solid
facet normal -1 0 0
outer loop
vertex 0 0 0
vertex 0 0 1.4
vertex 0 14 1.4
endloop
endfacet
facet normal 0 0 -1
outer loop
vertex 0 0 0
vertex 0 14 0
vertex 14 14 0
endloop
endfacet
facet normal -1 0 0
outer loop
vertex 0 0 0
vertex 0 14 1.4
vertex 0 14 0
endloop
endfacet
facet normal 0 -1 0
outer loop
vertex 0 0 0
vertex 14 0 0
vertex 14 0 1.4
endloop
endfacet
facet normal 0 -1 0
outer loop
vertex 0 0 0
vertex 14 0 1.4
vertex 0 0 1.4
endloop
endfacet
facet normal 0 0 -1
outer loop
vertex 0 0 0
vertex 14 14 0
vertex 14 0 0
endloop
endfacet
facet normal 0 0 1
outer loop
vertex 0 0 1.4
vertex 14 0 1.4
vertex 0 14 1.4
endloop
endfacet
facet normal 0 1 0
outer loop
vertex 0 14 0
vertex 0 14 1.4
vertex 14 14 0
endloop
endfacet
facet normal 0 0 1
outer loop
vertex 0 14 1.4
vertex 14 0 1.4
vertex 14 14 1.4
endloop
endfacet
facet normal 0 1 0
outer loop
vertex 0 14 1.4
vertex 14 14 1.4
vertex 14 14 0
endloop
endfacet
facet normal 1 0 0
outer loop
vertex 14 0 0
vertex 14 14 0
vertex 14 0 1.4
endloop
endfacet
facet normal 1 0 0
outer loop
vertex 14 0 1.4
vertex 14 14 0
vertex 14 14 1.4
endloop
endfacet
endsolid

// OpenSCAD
/* Warning, this is a very basic generator with a lot of approximation 
input data : [LFBGA, 3JX, 14x14x1.4mm, 256, , A, C04-00369A]
generated by com.zoubworld.electronics.cad.model3d.Basic
Date : Sun Feb 15 10:50:48 CET 2026
*/

//body
color("black")
translate([0,0,0])
cube([14.0,14.0,1.4], center=false);
